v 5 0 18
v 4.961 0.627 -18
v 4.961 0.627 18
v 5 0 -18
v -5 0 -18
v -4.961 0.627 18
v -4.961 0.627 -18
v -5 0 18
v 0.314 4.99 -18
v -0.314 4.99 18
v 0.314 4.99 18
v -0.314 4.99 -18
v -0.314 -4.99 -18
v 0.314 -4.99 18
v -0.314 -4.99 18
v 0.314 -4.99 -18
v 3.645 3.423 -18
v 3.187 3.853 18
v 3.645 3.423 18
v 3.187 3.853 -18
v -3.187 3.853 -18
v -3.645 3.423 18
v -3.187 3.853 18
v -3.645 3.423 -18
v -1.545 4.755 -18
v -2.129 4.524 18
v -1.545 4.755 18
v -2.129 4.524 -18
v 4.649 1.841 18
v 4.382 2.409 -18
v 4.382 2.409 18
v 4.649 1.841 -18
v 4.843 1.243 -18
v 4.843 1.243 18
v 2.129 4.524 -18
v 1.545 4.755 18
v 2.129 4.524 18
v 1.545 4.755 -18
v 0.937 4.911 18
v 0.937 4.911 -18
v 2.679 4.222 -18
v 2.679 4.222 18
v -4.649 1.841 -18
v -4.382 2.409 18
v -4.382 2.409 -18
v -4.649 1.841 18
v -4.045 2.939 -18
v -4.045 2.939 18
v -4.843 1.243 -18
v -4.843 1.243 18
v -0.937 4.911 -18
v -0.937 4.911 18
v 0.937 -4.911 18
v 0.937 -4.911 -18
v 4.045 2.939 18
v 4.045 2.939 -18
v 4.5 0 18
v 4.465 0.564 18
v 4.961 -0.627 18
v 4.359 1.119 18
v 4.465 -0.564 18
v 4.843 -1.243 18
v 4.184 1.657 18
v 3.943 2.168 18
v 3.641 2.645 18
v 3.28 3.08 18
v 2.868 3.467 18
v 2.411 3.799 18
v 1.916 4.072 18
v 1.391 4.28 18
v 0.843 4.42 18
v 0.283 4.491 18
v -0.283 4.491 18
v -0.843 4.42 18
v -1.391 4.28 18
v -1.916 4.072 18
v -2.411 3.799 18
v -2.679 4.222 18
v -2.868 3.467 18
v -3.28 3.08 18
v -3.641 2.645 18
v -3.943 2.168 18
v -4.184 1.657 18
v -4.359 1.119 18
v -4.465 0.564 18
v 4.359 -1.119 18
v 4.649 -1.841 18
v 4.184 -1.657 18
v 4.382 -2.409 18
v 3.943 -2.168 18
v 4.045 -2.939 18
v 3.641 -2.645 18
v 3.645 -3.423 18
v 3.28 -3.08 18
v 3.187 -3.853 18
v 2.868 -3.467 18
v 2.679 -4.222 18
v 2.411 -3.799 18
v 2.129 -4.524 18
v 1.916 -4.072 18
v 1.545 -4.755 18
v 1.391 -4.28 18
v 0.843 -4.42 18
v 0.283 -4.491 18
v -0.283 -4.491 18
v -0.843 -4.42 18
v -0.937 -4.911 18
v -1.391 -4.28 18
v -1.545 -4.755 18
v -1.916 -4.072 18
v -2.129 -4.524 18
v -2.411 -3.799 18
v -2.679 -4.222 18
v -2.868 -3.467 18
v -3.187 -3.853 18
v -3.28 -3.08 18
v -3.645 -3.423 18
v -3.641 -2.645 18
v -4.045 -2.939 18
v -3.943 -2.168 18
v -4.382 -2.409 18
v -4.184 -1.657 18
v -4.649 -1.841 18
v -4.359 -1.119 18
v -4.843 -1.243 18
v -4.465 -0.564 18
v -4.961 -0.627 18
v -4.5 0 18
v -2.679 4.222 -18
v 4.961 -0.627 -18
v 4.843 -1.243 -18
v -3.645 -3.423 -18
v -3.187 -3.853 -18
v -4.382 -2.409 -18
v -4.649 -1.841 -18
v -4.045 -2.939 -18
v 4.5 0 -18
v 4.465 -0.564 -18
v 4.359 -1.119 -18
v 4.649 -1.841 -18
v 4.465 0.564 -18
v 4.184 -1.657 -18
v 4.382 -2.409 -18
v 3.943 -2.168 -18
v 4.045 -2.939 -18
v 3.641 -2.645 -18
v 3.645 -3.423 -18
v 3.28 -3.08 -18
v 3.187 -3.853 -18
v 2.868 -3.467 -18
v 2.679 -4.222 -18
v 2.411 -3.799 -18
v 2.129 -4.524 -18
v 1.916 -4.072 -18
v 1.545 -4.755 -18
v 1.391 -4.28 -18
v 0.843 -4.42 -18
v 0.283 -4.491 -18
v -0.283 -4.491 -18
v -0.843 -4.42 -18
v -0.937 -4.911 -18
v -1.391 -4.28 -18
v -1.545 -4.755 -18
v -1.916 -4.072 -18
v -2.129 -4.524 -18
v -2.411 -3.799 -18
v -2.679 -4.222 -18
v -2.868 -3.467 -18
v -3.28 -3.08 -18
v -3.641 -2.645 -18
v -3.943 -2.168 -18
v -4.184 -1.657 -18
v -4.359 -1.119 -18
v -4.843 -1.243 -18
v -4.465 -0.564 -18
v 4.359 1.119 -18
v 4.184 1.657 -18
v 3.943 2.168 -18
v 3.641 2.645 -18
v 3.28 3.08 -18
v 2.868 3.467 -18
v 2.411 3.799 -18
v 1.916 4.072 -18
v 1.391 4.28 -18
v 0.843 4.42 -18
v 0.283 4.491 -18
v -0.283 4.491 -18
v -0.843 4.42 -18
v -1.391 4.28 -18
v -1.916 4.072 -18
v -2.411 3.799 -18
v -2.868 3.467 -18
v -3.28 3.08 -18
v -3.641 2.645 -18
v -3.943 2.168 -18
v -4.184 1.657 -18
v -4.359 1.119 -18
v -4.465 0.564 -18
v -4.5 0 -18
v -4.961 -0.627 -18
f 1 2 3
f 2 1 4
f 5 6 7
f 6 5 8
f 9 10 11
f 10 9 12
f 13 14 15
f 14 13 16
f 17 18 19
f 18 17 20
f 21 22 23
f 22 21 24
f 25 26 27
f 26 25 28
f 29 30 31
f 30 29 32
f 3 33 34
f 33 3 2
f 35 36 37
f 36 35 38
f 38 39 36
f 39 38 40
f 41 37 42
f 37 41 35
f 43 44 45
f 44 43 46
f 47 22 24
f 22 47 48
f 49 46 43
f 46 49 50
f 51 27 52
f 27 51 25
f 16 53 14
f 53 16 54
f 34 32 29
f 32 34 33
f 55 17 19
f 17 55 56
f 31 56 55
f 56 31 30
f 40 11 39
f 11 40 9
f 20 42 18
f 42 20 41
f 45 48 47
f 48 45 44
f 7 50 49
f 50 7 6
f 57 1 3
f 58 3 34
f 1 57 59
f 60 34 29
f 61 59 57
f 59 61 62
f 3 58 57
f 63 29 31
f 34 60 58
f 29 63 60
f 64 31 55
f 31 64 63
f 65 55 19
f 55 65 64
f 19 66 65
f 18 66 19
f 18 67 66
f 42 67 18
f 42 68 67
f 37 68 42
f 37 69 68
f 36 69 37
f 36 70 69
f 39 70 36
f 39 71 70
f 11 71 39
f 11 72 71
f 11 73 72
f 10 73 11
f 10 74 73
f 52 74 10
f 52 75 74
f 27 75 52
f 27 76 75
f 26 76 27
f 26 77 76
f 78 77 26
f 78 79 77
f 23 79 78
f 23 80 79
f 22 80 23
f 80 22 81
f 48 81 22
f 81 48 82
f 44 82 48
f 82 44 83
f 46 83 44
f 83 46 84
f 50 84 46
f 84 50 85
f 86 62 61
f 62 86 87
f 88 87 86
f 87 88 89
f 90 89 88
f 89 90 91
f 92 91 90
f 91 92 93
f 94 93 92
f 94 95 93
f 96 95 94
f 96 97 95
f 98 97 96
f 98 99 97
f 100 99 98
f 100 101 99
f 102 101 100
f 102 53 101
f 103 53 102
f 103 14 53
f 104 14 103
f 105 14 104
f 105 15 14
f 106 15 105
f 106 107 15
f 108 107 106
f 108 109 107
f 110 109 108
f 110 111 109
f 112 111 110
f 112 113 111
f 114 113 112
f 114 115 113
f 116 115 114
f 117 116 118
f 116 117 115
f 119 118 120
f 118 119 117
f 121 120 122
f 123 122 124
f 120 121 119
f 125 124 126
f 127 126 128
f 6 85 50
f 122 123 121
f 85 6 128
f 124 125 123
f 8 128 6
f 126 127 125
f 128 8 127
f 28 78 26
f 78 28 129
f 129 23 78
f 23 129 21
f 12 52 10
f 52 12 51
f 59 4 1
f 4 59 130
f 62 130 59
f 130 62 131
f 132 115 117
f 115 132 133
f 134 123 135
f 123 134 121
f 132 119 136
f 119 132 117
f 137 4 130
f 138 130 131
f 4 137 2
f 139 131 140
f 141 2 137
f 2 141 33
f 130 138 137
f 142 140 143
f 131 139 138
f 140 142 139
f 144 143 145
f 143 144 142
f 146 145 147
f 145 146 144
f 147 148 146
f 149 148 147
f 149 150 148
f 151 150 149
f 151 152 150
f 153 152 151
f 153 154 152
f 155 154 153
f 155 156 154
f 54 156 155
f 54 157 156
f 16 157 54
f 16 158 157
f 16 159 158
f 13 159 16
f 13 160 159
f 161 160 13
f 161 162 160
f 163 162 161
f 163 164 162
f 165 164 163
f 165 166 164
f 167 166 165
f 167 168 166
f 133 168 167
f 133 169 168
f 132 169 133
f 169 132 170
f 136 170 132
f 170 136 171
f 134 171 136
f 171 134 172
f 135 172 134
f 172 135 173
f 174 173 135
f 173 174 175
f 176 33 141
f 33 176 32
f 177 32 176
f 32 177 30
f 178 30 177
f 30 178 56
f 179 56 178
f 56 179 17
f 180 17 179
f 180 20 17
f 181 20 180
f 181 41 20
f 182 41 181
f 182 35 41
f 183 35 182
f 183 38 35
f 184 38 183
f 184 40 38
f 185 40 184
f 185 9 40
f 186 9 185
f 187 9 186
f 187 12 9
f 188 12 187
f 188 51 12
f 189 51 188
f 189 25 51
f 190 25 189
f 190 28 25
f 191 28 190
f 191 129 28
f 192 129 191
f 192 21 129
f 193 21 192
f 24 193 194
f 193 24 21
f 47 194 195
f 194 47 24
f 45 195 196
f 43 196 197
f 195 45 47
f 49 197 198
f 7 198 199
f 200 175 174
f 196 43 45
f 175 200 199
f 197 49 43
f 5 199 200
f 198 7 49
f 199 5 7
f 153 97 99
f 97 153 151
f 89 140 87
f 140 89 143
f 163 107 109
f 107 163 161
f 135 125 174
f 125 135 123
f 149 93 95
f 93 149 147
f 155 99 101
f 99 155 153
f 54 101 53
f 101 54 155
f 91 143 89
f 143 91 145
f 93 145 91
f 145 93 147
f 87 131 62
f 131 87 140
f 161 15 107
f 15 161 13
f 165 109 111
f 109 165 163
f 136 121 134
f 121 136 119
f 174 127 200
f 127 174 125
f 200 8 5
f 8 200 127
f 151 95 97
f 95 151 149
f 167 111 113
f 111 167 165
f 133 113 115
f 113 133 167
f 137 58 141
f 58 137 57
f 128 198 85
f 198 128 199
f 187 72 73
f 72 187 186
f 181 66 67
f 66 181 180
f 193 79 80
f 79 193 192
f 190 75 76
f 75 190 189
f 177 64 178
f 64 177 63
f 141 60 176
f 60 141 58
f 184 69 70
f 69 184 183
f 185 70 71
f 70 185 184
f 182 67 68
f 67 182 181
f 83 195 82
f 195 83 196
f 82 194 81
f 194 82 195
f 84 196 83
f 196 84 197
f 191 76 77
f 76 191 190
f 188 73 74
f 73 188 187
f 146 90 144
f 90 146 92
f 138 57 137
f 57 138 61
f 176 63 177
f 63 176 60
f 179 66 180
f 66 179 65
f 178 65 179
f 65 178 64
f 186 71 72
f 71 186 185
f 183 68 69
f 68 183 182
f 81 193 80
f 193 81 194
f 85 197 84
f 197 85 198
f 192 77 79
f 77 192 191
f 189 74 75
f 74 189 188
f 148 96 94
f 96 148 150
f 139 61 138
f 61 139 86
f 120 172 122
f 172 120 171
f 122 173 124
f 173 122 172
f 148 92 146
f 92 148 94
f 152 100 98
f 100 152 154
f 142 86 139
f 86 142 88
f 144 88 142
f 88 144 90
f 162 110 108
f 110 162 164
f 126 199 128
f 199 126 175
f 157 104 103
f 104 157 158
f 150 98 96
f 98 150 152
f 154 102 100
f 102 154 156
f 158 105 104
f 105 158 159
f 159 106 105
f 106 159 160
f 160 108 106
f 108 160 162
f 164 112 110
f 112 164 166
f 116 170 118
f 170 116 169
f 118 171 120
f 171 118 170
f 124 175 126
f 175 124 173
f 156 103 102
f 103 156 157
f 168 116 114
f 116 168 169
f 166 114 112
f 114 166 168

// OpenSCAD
$fn = 50;


difference() {
	union() {
		translate(v = [0, 0, -18.0000000000]) {
			cylinder(h = 36, r = 5.0000000000);
		}
	}
	union() {
		translate(v = [0, 0, -100.0000000000]) {
			cylinder(h = 200, r = 4.5000000000);
		}
	}
}
